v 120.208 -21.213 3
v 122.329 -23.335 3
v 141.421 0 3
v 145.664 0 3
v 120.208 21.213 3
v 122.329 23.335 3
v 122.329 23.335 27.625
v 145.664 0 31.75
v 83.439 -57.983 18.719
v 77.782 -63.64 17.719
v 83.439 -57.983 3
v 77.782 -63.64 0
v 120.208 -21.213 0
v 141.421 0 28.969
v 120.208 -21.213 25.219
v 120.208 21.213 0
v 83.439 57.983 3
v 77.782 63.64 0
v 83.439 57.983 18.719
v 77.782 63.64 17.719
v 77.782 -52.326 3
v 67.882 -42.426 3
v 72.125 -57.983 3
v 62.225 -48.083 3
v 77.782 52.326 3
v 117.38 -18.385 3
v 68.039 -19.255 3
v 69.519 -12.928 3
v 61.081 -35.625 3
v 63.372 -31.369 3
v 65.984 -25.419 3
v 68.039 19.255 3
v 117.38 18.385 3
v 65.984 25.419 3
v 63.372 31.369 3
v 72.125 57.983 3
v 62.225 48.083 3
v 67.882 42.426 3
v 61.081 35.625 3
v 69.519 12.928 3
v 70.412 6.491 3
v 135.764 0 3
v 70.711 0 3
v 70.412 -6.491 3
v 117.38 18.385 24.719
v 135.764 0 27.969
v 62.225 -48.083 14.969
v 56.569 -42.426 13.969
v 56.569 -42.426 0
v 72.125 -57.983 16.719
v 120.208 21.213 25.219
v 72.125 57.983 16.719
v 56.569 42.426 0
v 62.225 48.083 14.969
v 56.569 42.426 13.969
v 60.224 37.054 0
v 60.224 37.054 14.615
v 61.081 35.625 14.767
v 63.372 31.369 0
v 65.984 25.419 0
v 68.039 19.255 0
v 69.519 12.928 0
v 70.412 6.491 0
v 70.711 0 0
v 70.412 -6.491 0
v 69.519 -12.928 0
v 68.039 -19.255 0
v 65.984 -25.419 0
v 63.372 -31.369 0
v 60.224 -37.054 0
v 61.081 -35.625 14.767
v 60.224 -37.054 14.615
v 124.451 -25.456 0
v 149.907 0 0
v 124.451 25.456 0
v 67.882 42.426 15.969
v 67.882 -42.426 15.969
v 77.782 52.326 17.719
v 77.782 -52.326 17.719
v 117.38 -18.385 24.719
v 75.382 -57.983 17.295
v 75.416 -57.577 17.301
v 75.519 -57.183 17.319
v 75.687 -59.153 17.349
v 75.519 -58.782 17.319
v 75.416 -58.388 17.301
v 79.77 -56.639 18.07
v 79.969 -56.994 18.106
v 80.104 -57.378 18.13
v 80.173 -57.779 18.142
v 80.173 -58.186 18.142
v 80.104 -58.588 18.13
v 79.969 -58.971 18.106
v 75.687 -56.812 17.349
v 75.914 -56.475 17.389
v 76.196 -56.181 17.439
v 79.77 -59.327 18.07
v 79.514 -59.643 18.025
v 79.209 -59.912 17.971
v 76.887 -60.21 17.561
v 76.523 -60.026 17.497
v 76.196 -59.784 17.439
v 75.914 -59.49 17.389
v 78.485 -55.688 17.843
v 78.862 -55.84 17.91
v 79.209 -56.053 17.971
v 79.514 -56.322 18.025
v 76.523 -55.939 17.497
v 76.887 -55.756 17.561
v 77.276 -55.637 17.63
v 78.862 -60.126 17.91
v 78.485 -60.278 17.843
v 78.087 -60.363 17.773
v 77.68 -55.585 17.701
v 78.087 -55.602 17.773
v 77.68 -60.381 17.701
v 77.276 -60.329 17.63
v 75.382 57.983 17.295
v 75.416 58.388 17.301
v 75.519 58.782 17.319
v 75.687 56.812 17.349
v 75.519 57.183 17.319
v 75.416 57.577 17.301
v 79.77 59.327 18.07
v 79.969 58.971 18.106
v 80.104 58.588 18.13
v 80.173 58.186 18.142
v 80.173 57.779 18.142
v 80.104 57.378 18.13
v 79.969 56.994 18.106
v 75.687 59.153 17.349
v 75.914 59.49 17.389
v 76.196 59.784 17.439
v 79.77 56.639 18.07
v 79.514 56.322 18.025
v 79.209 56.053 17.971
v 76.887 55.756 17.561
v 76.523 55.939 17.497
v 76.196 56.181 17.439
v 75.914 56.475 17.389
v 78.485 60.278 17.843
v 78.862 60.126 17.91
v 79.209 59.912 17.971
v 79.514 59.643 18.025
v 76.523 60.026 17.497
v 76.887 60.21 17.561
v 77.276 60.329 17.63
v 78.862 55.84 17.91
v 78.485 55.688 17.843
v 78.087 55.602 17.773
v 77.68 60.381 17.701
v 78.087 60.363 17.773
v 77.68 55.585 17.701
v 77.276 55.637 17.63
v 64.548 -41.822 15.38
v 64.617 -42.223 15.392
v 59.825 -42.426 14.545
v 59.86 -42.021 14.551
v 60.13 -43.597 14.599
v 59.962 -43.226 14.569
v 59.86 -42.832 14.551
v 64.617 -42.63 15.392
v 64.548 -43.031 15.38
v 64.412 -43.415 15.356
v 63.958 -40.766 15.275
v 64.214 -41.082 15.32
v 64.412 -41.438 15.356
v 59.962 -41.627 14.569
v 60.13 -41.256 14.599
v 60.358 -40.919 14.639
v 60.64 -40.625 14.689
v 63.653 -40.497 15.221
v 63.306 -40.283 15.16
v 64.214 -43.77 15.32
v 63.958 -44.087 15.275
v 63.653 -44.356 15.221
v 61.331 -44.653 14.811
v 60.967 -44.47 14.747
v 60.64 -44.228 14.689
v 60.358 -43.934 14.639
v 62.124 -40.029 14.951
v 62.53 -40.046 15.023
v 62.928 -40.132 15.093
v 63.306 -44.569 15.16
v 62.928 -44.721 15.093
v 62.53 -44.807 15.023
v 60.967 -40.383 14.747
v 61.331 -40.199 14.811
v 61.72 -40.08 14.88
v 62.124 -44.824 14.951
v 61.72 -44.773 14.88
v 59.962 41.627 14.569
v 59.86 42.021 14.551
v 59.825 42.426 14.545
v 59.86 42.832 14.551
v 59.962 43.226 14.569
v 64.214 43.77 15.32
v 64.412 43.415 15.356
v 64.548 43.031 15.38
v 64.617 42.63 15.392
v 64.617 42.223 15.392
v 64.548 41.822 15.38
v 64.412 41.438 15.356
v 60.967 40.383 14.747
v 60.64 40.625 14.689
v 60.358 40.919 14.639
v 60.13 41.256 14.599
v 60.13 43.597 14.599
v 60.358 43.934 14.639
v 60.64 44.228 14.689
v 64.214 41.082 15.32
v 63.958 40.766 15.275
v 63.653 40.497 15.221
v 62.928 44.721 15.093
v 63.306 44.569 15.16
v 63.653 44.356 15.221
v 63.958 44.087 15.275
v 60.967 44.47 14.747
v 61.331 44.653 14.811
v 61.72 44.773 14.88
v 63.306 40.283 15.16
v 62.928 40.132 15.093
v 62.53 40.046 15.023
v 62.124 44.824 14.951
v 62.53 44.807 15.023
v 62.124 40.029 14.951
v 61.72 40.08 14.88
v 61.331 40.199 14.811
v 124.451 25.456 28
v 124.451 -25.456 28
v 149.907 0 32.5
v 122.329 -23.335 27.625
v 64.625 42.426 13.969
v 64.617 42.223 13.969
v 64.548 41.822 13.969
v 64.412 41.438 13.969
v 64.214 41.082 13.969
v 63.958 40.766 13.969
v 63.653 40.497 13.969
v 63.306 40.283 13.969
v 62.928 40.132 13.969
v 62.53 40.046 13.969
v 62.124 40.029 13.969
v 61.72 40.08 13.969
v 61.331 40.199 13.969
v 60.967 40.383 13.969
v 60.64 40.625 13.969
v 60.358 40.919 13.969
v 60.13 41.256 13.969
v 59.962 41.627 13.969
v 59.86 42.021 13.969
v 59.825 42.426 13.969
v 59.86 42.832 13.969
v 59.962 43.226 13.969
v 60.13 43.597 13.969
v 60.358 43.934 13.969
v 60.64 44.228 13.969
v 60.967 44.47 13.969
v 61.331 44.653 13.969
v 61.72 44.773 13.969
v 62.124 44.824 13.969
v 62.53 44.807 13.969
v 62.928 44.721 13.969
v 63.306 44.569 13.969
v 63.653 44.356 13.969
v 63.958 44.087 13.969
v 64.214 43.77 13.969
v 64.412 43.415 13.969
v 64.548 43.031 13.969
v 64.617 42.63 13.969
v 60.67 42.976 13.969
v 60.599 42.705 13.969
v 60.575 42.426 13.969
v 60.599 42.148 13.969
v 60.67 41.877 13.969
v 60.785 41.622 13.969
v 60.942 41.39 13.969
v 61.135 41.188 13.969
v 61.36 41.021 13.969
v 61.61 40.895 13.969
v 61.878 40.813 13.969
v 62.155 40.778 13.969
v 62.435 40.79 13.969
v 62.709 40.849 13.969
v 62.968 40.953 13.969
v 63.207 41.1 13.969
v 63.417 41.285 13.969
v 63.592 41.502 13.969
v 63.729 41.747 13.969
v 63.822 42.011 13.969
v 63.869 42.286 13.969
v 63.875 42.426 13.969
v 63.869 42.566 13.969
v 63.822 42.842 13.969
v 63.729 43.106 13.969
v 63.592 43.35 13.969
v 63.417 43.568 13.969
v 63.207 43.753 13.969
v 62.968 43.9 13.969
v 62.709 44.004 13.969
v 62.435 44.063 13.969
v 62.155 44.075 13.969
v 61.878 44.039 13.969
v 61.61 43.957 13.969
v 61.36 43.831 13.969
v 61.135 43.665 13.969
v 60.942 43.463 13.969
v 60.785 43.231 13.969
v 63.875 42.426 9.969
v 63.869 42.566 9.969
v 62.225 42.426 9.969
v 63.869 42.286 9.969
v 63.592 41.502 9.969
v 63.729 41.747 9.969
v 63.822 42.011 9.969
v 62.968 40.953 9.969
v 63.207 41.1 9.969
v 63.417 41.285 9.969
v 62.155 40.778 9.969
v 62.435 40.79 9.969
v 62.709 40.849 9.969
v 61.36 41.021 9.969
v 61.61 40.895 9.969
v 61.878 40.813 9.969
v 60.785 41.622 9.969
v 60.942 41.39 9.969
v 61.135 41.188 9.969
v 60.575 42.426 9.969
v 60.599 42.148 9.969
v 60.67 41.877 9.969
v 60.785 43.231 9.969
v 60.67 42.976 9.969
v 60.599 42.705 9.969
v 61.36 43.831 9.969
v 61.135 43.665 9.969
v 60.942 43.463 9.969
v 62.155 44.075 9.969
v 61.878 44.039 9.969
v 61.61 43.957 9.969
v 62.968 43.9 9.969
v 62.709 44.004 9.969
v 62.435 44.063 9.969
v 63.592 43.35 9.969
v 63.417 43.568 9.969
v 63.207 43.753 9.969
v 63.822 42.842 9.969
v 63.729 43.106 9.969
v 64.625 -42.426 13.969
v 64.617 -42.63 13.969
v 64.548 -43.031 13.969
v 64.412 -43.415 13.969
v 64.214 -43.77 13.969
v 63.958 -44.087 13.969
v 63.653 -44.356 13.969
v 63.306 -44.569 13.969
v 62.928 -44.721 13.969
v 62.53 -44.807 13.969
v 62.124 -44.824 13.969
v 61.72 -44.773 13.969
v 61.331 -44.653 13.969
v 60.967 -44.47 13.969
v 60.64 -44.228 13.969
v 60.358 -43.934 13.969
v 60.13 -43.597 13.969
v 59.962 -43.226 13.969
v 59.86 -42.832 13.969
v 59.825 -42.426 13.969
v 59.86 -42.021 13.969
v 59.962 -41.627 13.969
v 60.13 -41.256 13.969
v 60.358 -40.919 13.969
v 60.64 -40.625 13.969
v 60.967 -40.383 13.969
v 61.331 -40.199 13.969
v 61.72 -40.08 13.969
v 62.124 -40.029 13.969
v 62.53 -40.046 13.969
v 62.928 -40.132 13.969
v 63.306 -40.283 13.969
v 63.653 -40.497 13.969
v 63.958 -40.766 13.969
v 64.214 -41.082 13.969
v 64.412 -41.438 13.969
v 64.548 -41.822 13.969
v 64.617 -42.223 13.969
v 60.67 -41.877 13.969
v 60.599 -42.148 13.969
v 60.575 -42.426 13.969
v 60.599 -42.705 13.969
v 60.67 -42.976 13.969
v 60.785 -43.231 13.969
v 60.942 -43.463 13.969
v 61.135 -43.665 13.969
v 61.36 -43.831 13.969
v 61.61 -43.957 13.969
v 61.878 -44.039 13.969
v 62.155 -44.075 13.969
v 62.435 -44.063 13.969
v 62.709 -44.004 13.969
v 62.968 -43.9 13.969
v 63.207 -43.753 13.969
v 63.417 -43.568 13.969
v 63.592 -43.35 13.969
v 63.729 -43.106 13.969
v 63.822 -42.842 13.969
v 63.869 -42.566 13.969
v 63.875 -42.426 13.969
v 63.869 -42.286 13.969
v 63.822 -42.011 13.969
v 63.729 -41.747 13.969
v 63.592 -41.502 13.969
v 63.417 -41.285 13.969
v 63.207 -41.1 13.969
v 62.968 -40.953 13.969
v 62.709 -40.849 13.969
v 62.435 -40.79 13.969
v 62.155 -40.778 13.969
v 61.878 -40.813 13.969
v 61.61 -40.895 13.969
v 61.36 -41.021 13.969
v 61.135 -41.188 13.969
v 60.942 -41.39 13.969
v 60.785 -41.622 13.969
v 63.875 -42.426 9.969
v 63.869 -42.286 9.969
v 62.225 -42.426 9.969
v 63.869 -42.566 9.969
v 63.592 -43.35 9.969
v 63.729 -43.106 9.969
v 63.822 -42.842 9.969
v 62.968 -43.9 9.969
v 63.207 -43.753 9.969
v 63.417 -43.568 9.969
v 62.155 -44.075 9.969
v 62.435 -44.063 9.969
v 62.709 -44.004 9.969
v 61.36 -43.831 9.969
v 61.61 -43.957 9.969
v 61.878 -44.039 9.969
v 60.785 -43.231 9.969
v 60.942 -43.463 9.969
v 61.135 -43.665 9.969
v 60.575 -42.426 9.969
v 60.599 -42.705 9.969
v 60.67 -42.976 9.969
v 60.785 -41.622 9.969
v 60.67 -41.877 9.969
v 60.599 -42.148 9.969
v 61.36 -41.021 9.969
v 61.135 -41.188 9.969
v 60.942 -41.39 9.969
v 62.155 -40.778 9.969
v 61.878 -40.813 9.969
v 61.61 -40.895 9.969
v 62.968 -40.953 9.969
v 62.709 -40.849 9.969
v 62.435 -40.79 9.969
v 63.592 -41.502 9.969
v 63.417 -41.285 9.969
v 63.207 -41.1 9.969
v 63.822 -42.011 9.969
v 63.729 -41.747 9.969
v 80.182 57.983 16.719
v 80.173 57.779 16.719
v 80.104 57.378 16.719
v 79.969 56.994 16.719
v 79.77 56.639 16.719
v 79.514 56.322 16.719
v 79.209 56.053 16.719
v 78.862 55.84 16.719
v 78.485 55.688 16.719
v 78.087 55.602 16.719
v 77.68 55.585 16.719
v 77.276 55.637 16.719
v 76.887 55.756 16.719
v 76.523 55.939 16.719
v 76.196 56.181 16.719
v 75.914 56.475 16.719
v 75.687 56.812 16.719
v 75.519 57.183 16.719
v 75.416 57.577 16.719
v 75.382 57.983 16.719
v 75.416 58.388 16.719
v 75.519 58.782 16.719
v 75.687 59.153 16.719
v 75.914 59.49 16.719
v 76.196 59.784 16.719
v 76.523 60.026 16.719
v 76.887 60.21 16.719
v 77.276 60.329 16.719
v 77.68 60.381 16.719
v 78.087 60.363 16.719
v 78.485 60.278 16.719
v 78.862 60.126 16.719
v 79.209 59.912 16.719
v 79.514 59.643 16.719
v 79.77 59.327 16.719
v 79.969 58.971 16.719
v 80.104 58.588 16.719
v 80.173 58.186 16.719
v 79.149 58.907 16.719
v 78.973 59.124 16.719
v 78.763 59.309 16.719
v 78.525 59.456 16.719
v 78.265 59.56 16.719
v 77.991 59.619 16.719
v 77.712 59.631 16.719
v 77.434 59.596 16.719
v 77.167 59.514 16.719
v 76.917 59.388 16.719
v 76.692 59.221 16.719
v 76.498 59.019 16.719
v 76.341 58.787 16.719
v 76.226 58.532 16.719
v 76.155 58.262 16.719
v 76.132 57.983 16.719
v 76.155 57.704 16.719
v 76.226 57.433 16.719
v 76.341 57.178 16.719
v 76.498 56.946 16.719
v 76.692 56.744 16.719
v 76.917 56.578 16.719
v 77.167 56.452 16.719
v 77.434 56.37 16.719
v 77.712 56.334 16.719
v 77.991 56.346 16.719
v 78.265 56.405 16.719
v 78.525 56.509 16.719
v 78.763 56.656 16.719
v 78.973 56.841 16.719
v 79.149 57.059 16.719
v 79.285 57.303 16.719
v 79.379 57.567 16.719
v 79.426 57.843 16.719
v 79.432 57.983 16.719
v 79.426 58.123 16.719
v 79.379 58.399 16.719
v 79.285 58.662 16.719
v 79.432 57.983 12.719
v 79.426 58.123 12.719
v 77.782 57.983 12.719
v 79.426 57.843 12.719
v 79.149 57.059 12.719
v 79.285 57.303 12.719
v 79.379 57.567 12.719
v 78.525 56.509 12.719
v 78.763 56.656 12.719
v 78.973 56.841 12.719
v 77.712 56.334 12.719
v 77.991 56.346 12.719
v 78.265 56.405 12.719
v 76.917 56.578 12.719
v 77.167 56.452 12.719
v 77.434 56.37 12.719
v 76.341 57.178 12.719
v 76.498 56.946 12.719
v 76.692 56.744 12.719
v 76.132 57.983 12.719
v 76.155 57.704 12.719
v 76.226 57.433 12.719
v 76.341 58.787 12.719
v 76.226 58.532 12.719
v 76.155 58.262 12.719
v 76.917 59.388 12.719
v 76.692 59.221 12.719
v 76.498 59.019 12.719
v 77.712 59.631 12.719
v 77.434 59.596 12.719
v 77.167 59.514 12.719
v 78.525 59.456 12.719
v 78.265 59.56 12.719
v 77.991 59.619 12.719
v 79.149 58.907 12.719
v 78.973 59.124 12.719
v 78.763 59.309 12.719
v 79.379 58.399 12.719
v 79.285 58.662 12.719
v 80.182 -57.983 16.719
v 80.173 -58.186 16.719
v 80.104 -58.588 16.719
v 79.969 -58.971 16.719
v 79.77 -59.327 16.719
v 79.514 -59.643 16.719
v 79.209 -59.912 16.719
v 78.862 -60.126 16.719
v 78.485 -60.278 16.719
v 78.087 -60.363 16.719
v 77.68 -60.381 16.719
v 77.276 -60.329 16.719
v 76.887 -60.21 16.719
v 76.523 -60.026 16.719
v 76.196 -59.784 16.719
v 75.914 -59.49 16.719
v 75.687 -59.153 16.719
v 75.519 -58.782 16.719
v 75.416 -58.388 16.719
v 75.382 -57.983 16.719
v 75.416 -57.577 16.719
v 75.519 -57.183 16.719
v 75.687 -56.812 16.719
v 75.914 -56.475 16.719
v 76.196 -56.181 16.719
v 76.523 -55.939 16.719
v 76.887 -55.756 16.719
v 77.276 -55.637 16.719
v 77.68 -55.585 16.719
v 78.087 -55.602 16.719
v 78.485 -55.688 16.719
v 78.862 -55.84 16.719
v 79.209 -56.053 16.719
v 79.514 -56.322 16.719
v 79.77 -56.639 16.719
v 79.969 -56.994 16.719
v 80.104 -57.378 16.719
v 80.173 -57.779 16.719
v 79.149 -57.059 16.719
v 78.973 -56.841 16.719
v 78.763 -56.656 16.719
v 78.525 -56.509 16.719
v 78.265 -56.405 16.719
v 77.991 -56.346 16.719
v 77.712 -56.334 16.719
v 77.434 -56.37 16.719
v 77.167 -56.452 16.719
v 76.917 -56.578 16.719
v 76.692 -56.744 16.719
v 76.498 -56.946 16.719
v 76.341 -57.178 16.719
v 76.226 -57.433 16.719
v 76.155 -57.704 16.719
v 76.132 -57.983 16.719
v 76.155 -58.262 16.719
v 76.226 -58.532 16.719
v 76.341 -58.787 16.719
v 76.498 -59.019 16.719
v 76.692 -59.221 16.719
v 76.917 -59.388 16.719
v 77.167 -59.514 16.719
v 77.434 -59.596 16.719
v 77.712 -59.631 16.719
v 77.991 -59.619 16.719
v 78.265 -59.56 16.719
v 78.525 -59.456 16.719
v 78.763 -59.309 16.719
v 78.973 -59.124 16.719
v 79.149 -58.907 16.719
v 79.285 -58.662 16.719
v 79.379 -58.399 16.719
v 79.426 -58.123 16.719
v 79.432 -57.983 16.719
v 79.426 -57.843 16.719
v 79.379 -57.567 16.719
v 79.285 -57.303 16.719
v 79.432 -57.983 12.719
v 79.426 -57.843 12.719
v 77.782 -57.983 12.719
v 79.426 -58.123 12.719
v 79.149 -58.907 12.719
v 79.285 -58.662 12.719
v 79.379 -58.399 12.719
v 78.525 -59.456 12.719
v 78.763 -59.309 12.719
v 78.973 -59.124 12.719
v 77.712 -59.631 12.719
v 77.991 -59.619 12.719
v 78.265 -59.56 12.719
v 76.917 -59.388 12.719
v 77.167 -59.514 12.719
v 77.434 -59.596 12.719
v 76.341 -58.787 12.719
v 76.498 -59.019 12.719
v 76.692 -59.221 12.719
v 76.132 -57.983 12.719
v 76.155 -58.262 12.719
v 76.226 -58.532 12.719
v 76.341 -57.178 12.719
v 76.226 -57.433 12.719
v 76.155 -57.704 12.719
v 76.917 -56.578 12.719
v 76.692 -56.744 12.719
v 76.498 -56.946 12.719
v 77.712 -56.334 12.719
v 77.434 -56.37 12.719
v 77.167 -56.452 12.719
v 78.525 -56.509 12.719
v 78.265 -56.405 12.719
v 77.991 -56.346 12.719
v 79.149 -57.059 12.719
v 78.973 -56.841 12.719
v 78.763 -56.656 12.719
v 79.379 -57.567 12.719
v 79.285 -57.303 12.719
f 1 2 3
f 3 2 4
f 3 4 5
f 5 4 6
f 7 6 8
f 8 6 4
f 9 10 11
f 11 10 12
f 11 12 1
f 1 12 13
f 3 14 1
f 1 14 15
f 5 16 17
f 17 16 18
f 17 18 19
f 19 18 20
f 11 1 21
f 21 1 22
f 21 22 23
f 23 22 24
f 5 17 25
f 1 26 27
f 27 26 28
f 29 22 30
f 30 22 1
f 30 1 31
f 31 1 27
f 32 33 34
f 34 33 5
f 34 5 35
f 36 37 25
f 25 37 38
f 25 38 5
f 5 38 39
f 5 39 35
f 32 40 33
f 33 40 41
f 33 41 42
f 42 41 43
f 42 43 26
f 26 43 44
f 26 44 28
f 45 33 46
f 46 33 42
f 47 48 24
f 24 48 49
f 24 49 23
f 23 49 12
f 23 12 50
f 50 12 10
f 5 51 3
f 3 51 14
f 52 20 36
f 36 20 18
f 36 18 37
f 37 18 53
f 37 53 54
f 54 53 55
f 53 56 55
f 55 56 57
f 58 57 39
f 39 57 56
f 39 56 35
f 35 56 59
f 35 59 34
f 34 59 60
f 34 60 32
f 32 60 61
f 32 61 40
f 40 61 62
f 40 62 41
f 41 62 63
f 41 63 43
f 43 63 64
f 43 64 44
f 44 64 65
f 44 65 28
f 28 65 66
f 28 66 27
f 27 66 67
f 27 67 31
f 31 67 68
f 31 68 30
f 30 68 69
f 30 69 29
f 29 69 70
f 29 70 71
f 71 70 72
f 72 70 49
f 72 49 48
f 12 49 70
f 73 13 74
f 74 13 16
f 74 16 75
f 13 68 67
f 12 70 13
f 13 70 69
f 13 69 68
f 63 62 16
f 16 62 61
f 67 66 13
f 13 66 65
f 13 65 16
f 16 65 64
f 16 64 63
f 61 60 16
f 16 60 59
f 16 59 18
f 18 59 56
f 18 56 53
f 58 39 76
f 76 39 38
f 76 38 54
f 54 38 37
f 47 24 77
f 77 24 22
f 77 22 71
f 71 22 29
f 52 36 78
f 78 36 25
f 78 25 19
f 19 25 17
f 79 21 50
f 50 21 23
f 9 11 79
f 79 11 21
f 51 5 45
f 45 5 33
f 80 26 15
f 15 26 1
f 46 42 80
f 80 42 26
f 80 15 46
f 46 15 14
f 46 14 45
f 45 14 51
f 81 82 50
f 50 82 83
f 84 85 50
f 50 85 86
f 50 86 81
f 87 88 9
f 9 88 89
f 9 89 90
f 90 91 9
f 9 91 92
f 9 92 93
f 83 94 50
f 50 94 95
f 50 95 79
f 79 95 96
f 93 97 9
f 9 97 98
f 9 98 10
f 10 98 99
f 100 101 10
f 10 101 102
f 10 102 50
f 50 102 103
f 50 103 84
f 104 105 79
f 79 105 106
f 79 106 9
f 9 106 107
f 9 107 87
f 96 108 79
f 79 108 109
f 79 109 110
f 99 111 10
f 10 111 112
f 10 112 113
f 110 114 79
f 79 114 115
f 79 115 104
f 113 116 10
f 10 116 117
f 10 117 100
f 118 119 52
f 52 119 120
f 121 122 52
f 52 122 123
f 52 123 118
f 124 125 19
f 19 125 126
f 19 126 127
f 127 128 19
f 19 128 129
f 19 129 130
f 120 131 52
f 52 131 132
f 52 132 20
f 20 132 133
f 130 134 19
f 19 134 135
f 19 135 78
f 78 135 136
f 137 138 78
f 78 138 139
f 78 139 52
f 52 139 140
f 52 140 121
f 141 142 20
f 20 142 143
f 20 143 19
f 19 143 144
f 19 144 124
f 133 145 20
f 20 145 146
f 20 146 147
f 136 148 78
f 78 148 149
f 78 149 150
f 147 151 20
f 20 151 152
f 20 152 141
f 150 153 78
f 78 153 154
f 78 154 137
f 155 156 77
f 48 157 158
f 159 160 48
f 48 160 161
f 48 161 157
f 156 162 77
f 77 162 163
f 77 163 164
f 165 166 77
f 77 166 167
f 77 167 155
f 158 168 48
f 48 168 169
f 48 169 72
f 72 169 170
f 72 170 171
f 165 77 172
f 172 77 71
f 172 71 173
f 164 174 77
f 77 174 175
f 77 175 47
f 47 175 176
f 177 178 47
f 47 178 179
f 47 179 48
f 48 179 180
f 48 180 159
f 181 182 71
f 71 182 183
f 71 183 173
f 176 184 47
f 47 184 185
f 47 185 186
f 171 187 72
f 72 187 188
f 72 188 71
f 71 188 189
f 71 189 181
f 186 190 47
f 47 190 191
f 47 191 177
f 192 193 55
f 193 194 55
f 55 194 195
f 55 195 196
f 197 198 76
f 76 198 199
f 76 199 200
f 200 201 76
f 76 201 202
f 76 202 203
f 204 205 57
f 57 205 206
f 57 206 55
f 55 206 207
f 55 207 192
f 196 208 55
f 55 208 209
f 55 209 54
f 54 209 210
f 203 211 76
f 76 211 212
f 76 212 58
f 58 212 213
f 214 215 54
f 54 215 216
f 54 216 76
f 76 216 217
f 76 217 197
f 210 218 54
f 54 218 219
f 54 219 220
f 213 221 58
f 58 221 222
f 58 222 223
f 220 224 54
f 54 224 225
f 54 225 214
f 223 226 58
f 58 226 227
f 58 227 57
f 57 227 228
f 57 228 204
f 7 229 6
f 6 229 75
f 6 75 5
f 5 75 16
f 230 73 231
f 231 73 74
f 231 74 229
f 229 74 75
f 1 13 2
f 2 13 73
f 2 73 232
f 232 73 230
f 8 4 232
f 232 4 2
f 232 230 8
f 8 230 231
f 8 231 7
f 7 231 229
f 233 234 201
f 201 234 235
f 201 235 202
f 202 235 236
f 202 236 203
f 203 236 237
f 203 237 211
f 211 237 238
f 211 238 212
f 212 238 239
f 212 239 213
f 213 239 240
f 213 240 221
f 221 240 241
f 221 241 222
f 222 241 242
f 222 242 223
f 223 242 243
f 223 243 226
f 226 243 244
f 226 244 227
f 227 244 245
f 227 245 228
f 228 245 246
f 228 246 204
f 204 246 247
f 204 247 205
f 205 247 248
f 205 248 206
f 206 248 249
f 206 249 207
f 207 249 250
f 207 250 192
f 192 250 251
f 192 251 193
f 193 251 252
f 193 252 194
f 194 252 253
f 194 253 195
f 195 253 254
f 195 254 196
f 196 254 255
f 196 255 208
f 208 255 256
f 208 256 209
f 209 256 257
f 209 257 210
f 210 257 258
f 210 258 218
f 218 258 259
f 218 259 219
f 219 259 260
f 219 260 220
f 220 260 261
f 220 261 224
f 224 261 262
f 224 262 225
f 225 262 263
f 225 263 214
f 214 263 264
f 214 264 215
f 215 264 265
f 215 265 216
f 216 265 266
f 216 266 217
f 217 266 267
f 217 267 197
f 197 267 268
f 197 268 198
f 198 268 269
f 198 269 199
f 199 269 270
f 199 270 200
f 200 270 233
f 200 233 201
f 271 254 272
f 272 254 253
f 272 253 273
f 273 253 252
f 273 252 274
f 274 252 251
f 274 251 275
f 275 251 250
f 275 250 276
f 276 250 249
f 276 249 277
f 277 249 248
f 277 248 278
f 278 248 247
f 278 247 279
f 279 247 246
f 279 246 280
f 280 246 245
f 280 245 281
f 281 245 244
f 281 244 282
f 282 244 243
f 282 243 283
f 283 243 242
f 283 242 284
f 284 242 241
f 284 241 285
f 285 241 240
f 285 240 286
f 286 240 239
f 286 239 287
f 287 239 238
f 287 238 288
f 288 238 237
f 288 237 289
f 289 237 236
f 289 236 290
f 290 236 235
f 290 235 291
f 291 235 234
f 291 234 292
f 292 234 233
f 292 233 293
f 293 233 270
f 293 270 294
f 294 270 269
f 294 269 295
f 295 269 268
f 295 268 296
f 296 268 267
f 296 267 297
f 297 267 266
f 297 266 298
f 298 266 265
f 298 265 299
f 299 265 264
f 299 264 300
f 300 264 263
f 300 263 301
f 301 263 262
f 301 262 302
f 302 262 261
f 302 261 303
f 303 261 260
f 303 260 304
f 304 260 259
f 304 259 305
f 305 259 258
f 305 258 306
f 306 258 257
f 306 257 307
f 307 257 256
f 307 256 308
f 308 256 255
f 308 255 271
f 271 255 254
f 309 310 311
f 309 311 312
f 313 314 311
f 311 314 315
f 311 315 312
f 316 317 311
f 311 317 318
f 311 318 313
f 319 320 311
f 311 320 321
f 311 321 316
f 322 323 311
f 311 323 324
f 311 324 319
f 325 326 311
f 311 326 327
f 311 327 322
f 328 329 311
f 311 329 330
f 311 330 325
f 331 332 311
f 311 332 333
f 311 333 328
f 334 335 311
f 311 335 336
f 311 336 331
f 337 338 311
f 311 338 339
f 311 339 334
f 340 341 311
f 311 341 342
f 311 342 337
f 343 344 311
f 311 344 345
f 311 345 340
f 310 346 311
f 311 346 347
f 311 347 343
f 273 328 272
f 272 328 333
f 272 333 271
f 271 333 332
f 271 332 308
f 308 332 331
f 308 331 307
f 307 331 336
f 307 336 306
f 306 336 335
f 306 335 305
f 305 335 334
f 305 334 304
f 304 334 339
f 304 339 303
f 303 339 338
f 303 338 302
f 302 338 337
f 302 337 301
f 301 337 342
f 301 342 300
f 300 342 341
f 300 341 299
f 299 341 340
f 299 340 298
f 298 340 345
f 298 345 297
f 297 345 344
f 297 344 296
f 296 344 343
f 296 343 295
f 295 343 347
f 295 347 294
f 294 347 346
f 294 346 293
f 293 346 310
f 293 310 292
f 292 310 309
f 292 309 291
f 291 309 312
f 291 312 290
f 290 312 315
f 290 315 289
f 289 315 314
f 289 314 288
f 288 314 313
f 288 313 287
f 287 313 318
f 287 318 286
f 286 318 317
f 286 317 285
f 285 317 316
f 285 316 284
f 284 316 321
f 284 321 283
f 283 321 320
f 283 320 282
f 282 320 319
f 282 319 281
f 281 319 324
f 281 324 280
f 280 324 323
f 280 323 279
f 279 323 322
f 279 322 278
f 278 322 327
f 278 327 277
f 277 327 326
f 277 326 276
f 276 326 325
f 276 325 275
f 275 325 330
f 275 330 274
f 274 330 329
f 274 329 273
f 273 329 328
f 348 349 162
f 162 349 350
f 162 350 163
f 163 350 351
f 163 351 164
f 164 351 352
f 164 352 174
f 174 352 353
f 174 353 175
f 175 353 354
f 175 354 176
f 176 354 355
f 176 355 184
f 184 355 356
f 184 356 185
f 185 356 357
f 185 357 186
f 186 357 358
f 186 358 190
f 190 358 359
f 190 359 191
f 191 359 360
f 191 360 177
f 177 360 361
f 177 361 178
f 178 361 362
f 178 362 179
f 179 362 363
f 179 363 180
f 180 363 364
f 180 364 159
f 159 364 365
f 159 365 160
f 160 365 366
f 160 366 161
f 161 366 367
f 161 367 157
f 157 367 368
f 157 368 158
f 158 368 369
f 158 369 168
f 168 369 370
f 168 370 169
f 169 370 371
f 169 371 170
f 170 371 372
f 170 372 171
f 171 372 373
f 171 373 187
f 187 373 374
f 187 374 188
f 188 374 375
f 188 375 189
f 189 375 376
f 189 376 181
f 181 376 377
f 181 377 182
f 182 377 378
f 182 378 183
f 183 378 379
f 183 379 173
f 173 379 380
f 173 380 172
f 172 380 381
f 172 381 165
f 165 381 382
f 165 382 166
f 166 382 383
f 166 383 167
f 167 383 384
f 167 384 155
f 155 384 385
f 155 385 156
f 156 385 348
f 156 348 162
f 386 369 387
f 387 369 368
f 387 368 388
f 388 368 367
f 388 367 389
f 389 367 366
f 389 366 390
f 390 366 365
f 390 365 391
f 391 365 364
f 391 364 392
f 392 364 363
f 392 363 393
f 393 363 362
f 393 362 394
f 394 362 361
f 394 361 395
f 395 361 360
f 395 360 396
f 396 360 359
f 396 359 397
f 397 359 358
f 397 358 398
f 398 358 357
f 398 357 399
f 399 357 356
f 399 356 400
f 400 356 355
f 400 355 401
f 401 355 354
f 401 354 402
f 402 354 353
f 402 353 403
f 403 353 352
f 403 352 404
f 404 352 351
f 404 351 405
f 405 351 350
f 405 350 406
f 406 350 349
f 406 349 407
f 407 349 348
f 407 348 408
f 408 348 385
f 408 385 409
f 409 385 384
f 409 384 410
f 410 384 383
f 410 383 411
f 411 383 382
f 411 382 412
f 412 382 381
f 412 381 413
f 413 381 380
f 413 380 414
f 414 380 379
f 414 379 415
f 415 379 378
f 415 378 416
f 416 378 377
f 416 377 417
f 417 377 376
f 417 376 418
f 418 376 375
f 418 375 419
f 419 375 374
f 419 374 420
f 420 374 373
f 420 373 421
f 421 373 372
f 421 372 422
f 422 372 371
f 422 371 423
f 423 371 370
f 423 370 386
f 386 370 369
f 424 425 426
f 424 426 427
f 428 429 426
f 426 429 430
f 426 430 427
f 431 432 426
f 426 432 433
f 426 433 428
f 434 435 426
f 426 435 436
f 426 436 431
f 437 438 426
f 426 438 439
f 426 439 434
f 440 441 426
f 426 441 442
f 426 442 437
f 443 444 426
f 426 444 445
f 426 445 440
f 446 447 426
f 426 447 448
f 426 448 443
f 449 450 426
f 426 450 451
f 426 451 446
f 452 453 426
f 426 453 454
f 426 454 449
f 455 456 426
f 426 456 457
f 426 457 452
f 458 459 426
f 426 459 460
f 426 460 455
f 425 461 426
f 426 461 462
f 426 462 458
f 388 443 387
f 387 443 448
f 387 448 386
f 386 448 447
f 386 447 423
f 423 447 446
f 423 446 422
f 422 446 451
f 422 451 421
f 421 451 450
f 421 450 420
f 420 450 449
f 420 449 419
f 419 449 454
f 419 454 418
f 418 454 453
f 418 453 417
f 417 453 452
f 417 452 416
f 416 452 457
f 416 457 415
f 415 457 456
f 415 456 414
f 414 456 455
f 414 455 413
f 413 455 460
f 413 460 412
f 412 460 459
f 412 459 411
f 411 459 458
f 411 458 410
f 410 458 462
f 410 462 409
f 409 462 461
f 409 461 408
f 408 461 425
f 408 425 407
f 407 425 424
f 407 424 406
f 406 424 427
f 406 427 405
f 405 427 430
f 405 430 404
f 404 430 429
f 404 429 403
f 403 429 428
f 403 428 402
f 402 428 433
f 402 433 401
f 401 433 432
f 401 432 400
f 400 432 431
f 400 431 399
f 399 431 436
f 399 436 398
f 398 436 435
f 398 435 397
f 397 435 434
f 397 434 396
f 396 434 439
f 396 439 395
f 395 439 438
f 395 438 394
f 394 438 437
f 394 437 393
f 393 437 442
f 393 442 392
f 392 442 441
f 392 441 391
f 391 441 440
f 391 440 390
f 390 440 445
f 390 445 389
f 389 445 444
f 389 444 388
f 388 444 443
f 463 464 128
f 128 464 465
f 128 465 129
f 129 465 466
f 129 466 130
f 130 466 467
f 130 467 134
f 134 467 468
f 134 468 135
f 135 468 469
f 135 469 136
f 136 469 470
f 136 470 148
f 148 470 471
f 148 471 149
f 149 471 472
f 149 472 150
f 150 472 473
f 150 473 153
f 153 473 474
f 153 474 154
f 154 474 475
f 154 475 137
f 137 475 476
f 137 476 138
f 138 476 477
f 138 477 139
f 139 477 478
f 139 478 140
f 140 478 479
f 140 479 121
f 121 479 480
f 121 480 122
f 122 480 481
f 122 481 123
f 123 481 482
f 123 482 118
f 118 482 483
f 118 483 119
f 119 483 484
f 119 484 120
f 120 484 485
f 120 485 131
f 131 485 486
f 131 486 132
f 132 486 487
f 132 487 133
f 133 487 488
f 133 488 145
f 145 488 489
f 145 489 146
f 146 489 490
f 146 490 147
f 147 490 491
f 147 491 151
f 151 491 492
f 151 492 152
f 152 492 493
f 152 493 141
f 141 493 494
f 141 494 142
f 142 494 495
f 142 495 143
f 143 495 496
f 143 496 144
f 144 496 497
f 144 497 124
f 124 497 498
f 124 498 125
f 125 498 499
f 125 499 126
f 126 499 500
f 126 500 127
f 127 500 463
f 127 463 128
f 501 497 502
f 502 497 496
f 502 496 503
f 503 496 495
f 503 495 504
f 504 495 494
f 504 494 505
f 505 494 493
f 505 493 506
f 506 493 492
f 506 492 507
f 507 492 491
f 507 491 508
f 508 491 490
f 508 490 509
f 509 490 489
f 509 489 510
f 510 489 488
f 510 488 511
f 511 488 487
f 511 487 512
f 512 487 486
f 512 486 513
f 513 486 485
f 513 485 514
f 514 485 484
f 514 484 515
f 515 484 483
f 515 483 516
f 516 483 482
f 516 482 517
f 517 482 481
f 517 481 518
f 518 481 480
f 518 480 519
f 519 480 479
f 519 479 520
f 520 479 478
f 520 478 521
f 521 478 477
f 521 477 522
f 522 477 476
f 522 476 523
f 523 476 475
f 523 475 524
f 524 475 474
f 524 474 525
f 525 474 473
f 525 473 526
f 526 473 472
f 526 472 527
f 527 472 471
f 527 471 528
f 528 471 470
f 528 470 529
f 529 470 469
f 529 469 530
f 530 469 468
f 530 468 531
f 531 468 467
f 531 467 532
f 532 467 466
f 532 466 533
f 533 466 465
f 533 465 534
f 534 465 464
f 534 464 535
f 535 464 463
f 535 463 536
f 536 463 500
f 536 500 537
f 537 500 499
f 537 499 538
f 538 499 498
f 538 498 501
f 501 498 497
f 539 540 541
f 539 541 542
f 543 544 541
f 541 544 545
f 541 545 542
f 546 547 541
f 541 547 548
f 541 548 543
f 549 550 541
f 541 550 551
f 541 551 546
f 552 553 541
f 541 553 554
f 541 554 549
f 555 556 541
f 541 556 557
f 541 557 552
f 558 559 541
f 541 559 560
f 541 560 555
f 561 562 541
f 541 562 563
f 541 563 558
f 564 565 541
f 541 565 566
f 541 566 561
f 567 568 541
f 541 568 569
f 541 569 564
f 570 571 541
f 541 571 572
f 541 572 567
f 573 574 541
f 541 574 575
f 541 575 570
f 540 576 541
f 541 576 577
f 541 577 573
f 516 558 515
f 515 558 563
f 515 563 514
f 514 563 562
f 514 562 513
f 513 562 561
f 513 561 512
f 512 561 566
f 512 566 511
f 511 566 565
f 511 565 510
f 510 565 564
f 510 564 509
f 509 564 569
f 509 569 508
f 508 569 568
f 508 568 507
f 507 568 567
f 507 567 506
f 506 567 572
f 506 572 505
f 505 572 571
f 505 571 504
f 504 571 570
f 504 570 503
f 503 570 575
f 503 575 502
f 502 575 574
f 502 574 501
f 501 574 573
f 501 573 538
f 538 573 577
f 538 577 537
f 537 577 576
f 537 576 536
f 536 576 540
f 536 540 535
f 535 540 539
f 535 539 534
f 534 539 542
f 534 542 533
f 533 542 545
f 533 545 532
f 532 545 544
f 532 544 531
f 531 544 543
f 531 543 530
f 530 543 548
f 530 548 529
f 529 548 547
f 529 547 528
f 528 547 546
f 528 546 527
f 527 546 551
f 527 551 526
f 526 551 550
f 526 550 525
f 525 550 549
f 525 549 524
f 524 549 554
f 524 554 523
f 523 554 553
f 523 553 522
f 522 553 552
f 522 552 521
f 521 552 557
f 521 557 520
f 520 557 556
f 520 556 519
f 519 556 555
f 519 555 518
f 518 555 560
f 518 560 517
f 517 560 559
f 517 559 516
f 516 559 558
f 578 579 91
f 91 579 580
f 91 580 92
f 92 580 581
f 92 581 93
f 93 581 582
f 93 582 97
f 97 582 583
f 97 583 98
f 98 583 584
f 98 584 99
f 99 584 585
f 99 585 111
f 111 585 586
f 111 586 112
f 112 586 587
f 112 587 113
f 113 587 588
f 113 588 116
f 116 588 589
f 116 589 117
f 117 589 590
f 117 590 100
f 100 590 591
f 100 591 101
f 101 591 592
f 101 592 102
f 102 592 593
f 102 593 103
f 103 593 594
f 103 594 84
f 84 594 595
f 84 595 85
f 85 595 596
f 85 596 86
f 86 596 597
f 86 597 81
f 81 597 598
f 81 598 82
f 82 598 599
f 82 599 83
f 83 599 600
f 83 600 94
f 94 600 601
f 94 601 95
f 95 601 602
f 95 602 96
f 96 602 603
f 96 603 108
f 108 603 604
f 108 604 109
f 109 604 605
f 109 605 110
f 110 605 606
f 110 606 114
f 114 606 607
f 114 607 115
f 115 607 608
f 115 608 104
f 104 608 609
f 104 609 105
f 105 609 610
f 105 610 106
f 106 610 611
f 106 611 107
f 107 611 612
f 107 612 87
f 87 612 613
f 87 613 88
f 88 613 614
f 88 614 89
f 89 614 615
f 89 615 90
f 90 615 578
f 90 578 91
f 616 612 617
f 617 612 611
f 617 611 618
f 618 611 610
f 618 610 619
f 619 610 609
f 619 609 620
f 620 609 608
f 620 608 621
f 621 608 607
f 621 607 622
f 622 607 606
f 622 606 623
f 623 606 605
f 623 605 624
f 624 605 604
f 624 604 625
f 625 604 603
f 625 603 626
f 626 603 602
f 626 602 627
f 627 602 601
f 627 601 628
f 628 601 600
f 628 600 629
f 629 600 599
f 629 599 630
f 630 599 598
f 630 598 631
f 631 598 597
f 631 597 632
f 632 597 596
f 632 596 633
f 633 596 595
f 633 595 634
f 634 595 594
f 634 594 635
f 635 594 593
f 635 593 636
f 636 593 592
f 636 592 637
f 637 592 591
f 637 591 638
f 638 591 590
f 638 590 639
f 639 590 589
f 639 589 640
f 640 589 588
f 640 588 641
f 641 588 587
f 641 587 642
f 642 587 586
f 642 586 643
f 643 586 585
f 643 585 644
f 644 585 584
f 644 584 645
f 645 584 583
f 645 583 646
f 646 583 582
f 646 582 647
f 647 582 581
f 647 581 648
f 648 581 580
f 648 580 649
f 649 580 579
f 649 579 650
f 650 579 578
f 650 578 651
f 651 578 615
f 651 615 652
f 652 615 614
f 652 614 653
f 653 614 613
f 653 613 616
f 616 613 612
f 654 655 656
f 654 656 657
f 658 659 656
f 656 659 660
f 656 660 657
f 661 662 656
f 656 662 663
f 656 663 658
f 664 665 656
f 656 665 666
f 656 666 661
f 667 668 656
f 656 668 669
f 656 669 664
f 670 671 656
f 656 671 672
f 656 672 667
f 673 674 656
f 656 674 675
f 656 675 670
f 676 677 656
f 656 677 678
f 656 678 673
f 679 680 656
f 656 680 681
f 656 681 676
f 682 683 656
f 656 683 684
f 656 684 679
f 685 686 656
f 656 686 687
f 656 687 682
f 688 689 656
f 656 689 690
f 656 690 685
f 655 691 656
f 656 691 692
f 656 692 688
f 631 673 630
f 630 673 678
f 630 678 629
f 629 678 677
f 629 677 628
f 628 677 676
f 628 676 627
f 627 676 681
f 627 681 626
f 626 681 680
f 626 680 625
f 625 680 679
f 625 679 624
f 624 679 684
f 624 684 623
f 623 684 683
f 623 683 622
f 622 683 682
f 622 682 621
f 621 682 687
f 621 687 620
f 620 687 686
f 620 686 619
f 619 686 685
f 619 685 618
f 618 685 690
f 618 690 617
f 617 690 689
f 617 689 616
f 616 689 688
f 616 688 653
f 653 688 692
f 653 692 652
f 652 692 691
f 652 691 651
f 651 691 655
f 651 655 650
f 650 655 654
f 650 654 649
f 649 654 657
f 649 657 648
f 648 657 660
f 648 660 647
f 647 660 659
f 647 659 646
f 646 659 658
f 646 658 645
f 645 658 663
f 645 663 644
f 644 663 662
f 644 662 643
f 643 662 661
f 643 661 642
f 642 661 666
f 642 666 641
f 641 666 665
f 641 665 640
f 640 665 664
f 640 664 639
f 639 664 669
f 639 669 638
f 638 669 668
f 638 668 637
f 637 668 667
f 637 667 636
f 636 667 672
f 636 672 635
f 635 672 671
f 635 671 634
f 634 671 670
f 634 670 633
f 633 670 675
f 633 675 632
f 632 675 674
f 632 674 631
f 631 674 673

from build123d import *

# Parameters (mm, degrees)
CLOSED_BOTTOM_PLATE_3MM_DEPTH       = 3
FOOT1_CURVED_R70P71_DEPTH           = 33
FOOT2_CURVED_R70P71_DEPTH           = 33
PAD4_C_BLANK_DEPTH                  = 33
PAD5_A_BLANK_DEPTH                  = 33
SLOT_BACKING_INSIDE_NORTH_DEPTH     = 35
SLOT_BACKING_INSIDE_EAST_DEPTH      = 35
TOP_OUTER_PLANE_DEPTH               = 159.981130956
TOP_OUTER_PLANE_DEPTH_BACK          = 159.981130956
SLOT_BASE_NORTH_DEPTH               = 3
SLOT_BASE_EAST_DEPTH                = 3
SLOT_OUTER_NORTH_DEPTH              = 35
SLOT_OUTER_EAST_DEPTH               = 35
CUT_EXTRUDE_2_DEPTH                 = 167.574307743
CUT_EXTRUDE_2_DEPTH_BACK            = 167.574307743
LOCATOR_1_SOCKET_D3P3_START         = 9.968990399
LOCATOR_1_SOCKET_D3P3_SKETCH_R      = 1.65
LOCATOR_1_SOCKET_D3P3_DEPTH         = 7
LOCATOR_1_ROOT_RELIEF_D4P8_START    = 13.968990399
LOCATOR_1_ROOT_RELIEF_D4P8_SKETCH_R = 2.4
LOCATOR_1_ROOT_RELIEF_D4P8_DEPTH    = 3
LOCATOR_2_SOCKET_D3P3_START         = 9.968990399
LOCATOR_2_SOCKET_D3P3_SKETCH_R      = 1.65
LOCATOR_2_SOCKET_D3P3_DEPTH         = 7
LOCATOR_2_ROOT_RELIEF_D4P8_START    = 13.968990399
LOCATOR_2_ROOT_RELIEF_D4P8_SKETCH_R = 2.4
LOCATOR_2_ROOT_RELIEF_D4P8_DEPTH    = 3
LOCATOR_3_SOCKET_D3P3_START         = 12.718990399
LOCATOR_3_SOCKET_D3P3_SKETCH_R      = 1.65
LOCATOR_3_SOCKET_D3P3_DEPTH         = 7
LOCATOR_3_ROOT_RELIEF_D4P8_START    = 16.718990399
LOCATOR_3_ROOT_RELIEF_D4P8_SKETCH_R = 2.4
LOCATOR_3_ROOT_RELIEF_D4P8_DEPTH    = 3
LOCATOR_4_SOCKET_D3P3_START         = 12.718990399
LOCATOR_4_SOCKET_D3P3_SKETCH_R      = 1.65
LOCATOR_4_SOCKET_D3P3_DEPTH         = 7
LOCATOR_4_ROOT_RELIEF_D4P8_START    = 16.718990399
LOCATOR_4_ROOT_RELIEF_D4P8_SKETCH_R = 2.4
LOCATOR_4_ROOT_RELIEF_D4P8_DEPTH    = 3


with BuildPart() as part:
    # Closed_bottom_plate_3mm_sketch → Closed_bottom_plate_3mm (new body)
    with BuildSketch(Plane.XY):
        with BuildLine():
            Line((77.781745931, -63.639610307), (141.421356237, 0))
            Line((141.421356237, 0), (77.781745931, 63.639610307))
            Line((77.781745931, 63.639610307), (56.568542495, 42.426406871))
            ThreePointArc((56.568542495, 42.426406871), (70.710678119, 0), (56.568542495, -42.426406871))
            Line((56.568542495, -42.426406871), (77.781745931, -63.639610307))
        make_face()
    extrude(amount=CLOSED_BOTTOM_PLATE_3MM_DEPTH)

    # Foot1_curved_R70p71_sketch → Foot1_curved_R70p71 (add)
    with BuildSketch(Plane.XY):
        with BuildLine():
            Line((62.225396744, 48.083261121), (67.882250994, 42.426406871))
            Line((67.882250994, 42.426406871), (61.080791676, 35.624947554))
            ThreePointArc((61.080791676, 35.624947554), (58.922885367, 39.090837546), (56.568542495, 42.426406871))
            Line((56.568542495, 42.426406871), (62.225396744, 48.083261121))
        make_face()
    extrude(amount=FOOT1_CURVED_R70P71_DEPTH)

    # Foot2_curved_R70p71_sketch → Foot2_curved_R70p71 (add)
    with BuildSketch(Plane.XY):
        with BuildLine():
            Line((62.225396744, -48.083261121), (67.882250994, -42.426406871))
            Line((67.882250994, -42.426406871), (61.080791676, -35.624947554))
            ThreePointArc((61.080791676, -35.624947554), (58.922885367, -39.090837546), (56.568542495, -42.426406871))
            Line((56.568542495, -42.426406871), (62.225396744, -48.083261121))
        make_face()
    extrude(amount=FOOT2_CURVED_R70P71_DEPTH)

    # Pad4_C_blank_sketch → Pad4_C_blank (add)
    with BuildSketch(Plane.XY):
        Polygon((72.124891681, 57.982756057), (77.781745931, 52.325901808), (83.43860018, 57.982756057), (77.781745931, 63.639610307), align=None)
    extrude(amount=PAD4_C_BLANK_DEPTH)

    # Pad5_A_blank_sketch → Pad5_A_blank (add)
    with BuildSketch(Plane.XY):
        Polygon((72.124891681, -57.982756057), (77.781745931, -63.639610307), (83.43860018, -57.982756057), (77.781745931, -52.325901808), align=None)
    extrude(amount=PAD5_A_BLANK_DEPTH)

    # Slot_backing_inside_north_sketch → Slot_backing_inside_north (add)
    with BuildSketch(Plane.XY):
        Polygon((117.379725677, 18.384776311), (138.592929113, -2.828427125), (141.421356237, 0), (120.208152802, 21.213203436), align=None)
    extrude(amount=SLOT_BACKING_INSIDE_NORTH_DEPTH)

    # Slot_backing_inside_east_sketch → Slot_backing_inside_east (add)
    with BuildSketch(Plane.XY):
        Polygon((117.379725677, -18.384776311), (120.208152802, -21.213203436), (141.421356237, 0), (138.592929113, 2.828427125), align=None)
    extrude(amount=SLOT_BACKING_INSIDE_EAST_DEPTH)

    # Top_outer_plane_sketch → Top_outer_plane (cut, two sides: drawn at the far end of the back side and taken through both)
    with BuildSketch(Plane(origin=(0, 0, 0), x_dir=(1, 0, 0), z_dir=(0, 1, 0)).offset(-TOP_OUTER_PLANE_DEPTH_BACK)):
        Polygon((-100, 13.708679131), (250, -48.163164223), (250, -100), (-100, -100), align=None)
    extrude(amount=TOP_OUTER_PLANE_DEPTH + TOP_OUTER_PLANE_DEPTH_BACK, mode=Mode.SUBTRACT)

    # Slot_base_north_sketch → Slot_base_north (add)
    with BuildSketch(Plane.XY):
        Polygon((117.379725677, 18.384776311), (142.8355698, -7.071067812), (149.906637612, 0), (124.450793489, 25.455844123), align=None)
    extrude(amount=SLOT_BASE_NORTH_DEPTH)

    # Slot_base_east_sketch → Slot_base_east (add)
    with BuildSketch(Plane.XY):
        Polygon((117.379725677, -18.384776311), (124.450793489, -25.455844123), (149.906637612, 0), (142.8355698, 7.071067812), align=None)
    extrude(amount=SLOT_BASE_EAST_DEPTH)

    # Slot_outer_north_sketch → Slot_outer_north (add)
    with BuildSketch(Plane.XY):
        Polygon((122.329473145, 23.334523779), (147.785317268, -2.121320344), (149.906637612, 0), (124.450793489, 25.455844123), align=None)
    extrude(amount=SLOT_OUTER_NORTH_DEPTH)

    # Slot_outer_east_sketch → Slot_outer_east (add)
    with BuildSketch(Plane.XY):
        Polygon((122.329473145, -23.334523779), (124.450793489, -25.455844123), (149.906637612, 0), (147.785317268, 2.121320344), align=None)
    extrude(amount=SLOT_OUTER_EAST_DEPTH)

    # 草图13 → 切除-拉伸2 (cut, two sides: drawn at the far end of the back side and taken through both)
    with BuildSketch(Plane(origin=(0, 0, 0), x_dir=(1, 0, 0), z_dir=(0, 1, 0)).offset(-CUT_EXTRUDE_2_DEPTH_BACK)):
        Polygon((-100, 11.67766953), (250, -50.194173824), (250, -100), (-100, -100), align=None)
    extrude(amount=CUT_EXTRUDE_2_DEPTH + CUT_EXTRUDE_2_DEPTH_BACK, mode=Mode.SUBTRACT)

    # Locator_1_socket_D3p3_sketch → Locator_1_socket_D3p3 (cut)
    with BuildSketch(Plane.XY.offset(LOCATOR_1_SOCKET_D3P3_START)):
        with Locations(Location((62.225396744, 42.426406871, 0), (0, 0, 180))):
            Circle(LOCATOR_1_SOCKET_D3P3_SKETCH_R)
    extrude(amount=LOCATOR_1_SOCKET_D3P3_DEPTH, mode=Mode.SUBTRACT)

    # Locator_1_root_relief_D4p8_sketch → Locator_1_root_relief_D4p8 (cut)
    with BuildSketch(Plane.XY.offset(LOCATOR_1_ROOT_RELIEF_D4P8_START)):
        with Locations(Location((62.225396744, 42.426406871, 0), (0, 0, 180))):
            Circle(LOCATOR_1_ROOT_RELIEF_D4P8_SKETCH_R)
    extrude(amount=LOCATOR_1_ROOT_RELIEF_D4P8_DEPTH, mode=Mode.SUBTRACT)

    # Locator_2_socket_D3p3_sketch → Locator_2_socket_D3p3 (cut)
    with BuildSketch(Plane.XY.offset(LOCATOR_2_SOCKET_D3P3_START)):
        with Locations(Location((62.225396744, -42.426406871, 0), (0, 0, 180))):
            Circle(LOCATOR_2_SOCKET_D3P3_SKETCH_R)
    extrude(amount=LOCATOR_2_SOCKET_D3P3_DEPTH, mode=Mode.SUBTRACT)

    # Locator_2_root_relief_D4p8_sketch → Locator_2_root_relief_D4p8 (cut)
    with BuildSketch(Plane.XY.offset(LOCATOR_2_ROOT_RELIEF_D4P8_START)):
        with Locations(Location((62.225396744, -42.426406871, 0), (0, 0, 180))):
            Circle(LOCATOR_2_ROOT_RELIEF_D4P8_SKETCH_R)
    extrude(amount=LOCATOR_2_ROOT_RELIEF_D4P8_DEPTH, mode=Mode.SUBTRACT)

    # Locator_3_socket_D3p3_sketch → Locator_3_socket_D3p3 (cut)
    with BuildSketch(Plane.XY.offset(LOCATOR_3_SOCKET_D3P3_START)):
        with Locations(Location((77.781745931, 57.982756057, 0), (0, 0, 180))):
            Circle(LOCATOR_3_SOCKET_D3P3_SKETCH_R)
    extrude(amount=LOCATOR_3_SOCKET_D3P3_DEPTH, mode=Mode.SUBTRACT)

    # Locator_3_root_relief_D4p8_sketch → Locator_3_root_relief_D4p8 (cut)
    with BuildSketch(Plane.XY.offset(LOCATOR_3_ROOT_RELIEF_D4P8_START)):
        with Locations(Location((77.781745931, 57.982756057, 0), (0, 0, 180))):
            Circle(LOCATOR_3_ROOT_RELIEF_D4P8_SKETCH_R)
    extrude(amount=LOCATOR_3_ROOT_RELIEF_D4P8_DEPTH, mode=Mode.SUBTRACT)

    # Locator_4_socket_D3p3_sketch → Locator_4_socket_D3p3 (cut)
    with BuildSketch(Plane.XY.offset(LOCATOR_4_SOCKET_D3P3_START)):
        with Locations(Location((77.781745931, -57.982756057, 0), (0, 0, 180))):
            Circle(LOCATOR_4_SOCKET_D3P3_SKETCH_R)
    extrude(amount=LOCATOR_4_SOCKET_D3P3_DEPTH, mode=Mode.SUBTRACT)

    # Locator_4_root_relief_D4p8_sketch → Locator_4_root_relief_D4p8 (cut)
    with BuildSketch(Plane.XY.offset(LOCATOR_4_ROOT_RELIEF_D4P8_START)):
        with Locations(Location((77.781745931, -57.982756057, 0), (0, 0, 180))):
            Circle(LOCATOR_4_ROOT_RELIEF_D4P8_SKETCH_R)
    extrude(amount=LOCATOR_4_ROOT_RELIEF_D4P8_DEPTH, mode=Mode.SUBTRACT)


solid = part.part
